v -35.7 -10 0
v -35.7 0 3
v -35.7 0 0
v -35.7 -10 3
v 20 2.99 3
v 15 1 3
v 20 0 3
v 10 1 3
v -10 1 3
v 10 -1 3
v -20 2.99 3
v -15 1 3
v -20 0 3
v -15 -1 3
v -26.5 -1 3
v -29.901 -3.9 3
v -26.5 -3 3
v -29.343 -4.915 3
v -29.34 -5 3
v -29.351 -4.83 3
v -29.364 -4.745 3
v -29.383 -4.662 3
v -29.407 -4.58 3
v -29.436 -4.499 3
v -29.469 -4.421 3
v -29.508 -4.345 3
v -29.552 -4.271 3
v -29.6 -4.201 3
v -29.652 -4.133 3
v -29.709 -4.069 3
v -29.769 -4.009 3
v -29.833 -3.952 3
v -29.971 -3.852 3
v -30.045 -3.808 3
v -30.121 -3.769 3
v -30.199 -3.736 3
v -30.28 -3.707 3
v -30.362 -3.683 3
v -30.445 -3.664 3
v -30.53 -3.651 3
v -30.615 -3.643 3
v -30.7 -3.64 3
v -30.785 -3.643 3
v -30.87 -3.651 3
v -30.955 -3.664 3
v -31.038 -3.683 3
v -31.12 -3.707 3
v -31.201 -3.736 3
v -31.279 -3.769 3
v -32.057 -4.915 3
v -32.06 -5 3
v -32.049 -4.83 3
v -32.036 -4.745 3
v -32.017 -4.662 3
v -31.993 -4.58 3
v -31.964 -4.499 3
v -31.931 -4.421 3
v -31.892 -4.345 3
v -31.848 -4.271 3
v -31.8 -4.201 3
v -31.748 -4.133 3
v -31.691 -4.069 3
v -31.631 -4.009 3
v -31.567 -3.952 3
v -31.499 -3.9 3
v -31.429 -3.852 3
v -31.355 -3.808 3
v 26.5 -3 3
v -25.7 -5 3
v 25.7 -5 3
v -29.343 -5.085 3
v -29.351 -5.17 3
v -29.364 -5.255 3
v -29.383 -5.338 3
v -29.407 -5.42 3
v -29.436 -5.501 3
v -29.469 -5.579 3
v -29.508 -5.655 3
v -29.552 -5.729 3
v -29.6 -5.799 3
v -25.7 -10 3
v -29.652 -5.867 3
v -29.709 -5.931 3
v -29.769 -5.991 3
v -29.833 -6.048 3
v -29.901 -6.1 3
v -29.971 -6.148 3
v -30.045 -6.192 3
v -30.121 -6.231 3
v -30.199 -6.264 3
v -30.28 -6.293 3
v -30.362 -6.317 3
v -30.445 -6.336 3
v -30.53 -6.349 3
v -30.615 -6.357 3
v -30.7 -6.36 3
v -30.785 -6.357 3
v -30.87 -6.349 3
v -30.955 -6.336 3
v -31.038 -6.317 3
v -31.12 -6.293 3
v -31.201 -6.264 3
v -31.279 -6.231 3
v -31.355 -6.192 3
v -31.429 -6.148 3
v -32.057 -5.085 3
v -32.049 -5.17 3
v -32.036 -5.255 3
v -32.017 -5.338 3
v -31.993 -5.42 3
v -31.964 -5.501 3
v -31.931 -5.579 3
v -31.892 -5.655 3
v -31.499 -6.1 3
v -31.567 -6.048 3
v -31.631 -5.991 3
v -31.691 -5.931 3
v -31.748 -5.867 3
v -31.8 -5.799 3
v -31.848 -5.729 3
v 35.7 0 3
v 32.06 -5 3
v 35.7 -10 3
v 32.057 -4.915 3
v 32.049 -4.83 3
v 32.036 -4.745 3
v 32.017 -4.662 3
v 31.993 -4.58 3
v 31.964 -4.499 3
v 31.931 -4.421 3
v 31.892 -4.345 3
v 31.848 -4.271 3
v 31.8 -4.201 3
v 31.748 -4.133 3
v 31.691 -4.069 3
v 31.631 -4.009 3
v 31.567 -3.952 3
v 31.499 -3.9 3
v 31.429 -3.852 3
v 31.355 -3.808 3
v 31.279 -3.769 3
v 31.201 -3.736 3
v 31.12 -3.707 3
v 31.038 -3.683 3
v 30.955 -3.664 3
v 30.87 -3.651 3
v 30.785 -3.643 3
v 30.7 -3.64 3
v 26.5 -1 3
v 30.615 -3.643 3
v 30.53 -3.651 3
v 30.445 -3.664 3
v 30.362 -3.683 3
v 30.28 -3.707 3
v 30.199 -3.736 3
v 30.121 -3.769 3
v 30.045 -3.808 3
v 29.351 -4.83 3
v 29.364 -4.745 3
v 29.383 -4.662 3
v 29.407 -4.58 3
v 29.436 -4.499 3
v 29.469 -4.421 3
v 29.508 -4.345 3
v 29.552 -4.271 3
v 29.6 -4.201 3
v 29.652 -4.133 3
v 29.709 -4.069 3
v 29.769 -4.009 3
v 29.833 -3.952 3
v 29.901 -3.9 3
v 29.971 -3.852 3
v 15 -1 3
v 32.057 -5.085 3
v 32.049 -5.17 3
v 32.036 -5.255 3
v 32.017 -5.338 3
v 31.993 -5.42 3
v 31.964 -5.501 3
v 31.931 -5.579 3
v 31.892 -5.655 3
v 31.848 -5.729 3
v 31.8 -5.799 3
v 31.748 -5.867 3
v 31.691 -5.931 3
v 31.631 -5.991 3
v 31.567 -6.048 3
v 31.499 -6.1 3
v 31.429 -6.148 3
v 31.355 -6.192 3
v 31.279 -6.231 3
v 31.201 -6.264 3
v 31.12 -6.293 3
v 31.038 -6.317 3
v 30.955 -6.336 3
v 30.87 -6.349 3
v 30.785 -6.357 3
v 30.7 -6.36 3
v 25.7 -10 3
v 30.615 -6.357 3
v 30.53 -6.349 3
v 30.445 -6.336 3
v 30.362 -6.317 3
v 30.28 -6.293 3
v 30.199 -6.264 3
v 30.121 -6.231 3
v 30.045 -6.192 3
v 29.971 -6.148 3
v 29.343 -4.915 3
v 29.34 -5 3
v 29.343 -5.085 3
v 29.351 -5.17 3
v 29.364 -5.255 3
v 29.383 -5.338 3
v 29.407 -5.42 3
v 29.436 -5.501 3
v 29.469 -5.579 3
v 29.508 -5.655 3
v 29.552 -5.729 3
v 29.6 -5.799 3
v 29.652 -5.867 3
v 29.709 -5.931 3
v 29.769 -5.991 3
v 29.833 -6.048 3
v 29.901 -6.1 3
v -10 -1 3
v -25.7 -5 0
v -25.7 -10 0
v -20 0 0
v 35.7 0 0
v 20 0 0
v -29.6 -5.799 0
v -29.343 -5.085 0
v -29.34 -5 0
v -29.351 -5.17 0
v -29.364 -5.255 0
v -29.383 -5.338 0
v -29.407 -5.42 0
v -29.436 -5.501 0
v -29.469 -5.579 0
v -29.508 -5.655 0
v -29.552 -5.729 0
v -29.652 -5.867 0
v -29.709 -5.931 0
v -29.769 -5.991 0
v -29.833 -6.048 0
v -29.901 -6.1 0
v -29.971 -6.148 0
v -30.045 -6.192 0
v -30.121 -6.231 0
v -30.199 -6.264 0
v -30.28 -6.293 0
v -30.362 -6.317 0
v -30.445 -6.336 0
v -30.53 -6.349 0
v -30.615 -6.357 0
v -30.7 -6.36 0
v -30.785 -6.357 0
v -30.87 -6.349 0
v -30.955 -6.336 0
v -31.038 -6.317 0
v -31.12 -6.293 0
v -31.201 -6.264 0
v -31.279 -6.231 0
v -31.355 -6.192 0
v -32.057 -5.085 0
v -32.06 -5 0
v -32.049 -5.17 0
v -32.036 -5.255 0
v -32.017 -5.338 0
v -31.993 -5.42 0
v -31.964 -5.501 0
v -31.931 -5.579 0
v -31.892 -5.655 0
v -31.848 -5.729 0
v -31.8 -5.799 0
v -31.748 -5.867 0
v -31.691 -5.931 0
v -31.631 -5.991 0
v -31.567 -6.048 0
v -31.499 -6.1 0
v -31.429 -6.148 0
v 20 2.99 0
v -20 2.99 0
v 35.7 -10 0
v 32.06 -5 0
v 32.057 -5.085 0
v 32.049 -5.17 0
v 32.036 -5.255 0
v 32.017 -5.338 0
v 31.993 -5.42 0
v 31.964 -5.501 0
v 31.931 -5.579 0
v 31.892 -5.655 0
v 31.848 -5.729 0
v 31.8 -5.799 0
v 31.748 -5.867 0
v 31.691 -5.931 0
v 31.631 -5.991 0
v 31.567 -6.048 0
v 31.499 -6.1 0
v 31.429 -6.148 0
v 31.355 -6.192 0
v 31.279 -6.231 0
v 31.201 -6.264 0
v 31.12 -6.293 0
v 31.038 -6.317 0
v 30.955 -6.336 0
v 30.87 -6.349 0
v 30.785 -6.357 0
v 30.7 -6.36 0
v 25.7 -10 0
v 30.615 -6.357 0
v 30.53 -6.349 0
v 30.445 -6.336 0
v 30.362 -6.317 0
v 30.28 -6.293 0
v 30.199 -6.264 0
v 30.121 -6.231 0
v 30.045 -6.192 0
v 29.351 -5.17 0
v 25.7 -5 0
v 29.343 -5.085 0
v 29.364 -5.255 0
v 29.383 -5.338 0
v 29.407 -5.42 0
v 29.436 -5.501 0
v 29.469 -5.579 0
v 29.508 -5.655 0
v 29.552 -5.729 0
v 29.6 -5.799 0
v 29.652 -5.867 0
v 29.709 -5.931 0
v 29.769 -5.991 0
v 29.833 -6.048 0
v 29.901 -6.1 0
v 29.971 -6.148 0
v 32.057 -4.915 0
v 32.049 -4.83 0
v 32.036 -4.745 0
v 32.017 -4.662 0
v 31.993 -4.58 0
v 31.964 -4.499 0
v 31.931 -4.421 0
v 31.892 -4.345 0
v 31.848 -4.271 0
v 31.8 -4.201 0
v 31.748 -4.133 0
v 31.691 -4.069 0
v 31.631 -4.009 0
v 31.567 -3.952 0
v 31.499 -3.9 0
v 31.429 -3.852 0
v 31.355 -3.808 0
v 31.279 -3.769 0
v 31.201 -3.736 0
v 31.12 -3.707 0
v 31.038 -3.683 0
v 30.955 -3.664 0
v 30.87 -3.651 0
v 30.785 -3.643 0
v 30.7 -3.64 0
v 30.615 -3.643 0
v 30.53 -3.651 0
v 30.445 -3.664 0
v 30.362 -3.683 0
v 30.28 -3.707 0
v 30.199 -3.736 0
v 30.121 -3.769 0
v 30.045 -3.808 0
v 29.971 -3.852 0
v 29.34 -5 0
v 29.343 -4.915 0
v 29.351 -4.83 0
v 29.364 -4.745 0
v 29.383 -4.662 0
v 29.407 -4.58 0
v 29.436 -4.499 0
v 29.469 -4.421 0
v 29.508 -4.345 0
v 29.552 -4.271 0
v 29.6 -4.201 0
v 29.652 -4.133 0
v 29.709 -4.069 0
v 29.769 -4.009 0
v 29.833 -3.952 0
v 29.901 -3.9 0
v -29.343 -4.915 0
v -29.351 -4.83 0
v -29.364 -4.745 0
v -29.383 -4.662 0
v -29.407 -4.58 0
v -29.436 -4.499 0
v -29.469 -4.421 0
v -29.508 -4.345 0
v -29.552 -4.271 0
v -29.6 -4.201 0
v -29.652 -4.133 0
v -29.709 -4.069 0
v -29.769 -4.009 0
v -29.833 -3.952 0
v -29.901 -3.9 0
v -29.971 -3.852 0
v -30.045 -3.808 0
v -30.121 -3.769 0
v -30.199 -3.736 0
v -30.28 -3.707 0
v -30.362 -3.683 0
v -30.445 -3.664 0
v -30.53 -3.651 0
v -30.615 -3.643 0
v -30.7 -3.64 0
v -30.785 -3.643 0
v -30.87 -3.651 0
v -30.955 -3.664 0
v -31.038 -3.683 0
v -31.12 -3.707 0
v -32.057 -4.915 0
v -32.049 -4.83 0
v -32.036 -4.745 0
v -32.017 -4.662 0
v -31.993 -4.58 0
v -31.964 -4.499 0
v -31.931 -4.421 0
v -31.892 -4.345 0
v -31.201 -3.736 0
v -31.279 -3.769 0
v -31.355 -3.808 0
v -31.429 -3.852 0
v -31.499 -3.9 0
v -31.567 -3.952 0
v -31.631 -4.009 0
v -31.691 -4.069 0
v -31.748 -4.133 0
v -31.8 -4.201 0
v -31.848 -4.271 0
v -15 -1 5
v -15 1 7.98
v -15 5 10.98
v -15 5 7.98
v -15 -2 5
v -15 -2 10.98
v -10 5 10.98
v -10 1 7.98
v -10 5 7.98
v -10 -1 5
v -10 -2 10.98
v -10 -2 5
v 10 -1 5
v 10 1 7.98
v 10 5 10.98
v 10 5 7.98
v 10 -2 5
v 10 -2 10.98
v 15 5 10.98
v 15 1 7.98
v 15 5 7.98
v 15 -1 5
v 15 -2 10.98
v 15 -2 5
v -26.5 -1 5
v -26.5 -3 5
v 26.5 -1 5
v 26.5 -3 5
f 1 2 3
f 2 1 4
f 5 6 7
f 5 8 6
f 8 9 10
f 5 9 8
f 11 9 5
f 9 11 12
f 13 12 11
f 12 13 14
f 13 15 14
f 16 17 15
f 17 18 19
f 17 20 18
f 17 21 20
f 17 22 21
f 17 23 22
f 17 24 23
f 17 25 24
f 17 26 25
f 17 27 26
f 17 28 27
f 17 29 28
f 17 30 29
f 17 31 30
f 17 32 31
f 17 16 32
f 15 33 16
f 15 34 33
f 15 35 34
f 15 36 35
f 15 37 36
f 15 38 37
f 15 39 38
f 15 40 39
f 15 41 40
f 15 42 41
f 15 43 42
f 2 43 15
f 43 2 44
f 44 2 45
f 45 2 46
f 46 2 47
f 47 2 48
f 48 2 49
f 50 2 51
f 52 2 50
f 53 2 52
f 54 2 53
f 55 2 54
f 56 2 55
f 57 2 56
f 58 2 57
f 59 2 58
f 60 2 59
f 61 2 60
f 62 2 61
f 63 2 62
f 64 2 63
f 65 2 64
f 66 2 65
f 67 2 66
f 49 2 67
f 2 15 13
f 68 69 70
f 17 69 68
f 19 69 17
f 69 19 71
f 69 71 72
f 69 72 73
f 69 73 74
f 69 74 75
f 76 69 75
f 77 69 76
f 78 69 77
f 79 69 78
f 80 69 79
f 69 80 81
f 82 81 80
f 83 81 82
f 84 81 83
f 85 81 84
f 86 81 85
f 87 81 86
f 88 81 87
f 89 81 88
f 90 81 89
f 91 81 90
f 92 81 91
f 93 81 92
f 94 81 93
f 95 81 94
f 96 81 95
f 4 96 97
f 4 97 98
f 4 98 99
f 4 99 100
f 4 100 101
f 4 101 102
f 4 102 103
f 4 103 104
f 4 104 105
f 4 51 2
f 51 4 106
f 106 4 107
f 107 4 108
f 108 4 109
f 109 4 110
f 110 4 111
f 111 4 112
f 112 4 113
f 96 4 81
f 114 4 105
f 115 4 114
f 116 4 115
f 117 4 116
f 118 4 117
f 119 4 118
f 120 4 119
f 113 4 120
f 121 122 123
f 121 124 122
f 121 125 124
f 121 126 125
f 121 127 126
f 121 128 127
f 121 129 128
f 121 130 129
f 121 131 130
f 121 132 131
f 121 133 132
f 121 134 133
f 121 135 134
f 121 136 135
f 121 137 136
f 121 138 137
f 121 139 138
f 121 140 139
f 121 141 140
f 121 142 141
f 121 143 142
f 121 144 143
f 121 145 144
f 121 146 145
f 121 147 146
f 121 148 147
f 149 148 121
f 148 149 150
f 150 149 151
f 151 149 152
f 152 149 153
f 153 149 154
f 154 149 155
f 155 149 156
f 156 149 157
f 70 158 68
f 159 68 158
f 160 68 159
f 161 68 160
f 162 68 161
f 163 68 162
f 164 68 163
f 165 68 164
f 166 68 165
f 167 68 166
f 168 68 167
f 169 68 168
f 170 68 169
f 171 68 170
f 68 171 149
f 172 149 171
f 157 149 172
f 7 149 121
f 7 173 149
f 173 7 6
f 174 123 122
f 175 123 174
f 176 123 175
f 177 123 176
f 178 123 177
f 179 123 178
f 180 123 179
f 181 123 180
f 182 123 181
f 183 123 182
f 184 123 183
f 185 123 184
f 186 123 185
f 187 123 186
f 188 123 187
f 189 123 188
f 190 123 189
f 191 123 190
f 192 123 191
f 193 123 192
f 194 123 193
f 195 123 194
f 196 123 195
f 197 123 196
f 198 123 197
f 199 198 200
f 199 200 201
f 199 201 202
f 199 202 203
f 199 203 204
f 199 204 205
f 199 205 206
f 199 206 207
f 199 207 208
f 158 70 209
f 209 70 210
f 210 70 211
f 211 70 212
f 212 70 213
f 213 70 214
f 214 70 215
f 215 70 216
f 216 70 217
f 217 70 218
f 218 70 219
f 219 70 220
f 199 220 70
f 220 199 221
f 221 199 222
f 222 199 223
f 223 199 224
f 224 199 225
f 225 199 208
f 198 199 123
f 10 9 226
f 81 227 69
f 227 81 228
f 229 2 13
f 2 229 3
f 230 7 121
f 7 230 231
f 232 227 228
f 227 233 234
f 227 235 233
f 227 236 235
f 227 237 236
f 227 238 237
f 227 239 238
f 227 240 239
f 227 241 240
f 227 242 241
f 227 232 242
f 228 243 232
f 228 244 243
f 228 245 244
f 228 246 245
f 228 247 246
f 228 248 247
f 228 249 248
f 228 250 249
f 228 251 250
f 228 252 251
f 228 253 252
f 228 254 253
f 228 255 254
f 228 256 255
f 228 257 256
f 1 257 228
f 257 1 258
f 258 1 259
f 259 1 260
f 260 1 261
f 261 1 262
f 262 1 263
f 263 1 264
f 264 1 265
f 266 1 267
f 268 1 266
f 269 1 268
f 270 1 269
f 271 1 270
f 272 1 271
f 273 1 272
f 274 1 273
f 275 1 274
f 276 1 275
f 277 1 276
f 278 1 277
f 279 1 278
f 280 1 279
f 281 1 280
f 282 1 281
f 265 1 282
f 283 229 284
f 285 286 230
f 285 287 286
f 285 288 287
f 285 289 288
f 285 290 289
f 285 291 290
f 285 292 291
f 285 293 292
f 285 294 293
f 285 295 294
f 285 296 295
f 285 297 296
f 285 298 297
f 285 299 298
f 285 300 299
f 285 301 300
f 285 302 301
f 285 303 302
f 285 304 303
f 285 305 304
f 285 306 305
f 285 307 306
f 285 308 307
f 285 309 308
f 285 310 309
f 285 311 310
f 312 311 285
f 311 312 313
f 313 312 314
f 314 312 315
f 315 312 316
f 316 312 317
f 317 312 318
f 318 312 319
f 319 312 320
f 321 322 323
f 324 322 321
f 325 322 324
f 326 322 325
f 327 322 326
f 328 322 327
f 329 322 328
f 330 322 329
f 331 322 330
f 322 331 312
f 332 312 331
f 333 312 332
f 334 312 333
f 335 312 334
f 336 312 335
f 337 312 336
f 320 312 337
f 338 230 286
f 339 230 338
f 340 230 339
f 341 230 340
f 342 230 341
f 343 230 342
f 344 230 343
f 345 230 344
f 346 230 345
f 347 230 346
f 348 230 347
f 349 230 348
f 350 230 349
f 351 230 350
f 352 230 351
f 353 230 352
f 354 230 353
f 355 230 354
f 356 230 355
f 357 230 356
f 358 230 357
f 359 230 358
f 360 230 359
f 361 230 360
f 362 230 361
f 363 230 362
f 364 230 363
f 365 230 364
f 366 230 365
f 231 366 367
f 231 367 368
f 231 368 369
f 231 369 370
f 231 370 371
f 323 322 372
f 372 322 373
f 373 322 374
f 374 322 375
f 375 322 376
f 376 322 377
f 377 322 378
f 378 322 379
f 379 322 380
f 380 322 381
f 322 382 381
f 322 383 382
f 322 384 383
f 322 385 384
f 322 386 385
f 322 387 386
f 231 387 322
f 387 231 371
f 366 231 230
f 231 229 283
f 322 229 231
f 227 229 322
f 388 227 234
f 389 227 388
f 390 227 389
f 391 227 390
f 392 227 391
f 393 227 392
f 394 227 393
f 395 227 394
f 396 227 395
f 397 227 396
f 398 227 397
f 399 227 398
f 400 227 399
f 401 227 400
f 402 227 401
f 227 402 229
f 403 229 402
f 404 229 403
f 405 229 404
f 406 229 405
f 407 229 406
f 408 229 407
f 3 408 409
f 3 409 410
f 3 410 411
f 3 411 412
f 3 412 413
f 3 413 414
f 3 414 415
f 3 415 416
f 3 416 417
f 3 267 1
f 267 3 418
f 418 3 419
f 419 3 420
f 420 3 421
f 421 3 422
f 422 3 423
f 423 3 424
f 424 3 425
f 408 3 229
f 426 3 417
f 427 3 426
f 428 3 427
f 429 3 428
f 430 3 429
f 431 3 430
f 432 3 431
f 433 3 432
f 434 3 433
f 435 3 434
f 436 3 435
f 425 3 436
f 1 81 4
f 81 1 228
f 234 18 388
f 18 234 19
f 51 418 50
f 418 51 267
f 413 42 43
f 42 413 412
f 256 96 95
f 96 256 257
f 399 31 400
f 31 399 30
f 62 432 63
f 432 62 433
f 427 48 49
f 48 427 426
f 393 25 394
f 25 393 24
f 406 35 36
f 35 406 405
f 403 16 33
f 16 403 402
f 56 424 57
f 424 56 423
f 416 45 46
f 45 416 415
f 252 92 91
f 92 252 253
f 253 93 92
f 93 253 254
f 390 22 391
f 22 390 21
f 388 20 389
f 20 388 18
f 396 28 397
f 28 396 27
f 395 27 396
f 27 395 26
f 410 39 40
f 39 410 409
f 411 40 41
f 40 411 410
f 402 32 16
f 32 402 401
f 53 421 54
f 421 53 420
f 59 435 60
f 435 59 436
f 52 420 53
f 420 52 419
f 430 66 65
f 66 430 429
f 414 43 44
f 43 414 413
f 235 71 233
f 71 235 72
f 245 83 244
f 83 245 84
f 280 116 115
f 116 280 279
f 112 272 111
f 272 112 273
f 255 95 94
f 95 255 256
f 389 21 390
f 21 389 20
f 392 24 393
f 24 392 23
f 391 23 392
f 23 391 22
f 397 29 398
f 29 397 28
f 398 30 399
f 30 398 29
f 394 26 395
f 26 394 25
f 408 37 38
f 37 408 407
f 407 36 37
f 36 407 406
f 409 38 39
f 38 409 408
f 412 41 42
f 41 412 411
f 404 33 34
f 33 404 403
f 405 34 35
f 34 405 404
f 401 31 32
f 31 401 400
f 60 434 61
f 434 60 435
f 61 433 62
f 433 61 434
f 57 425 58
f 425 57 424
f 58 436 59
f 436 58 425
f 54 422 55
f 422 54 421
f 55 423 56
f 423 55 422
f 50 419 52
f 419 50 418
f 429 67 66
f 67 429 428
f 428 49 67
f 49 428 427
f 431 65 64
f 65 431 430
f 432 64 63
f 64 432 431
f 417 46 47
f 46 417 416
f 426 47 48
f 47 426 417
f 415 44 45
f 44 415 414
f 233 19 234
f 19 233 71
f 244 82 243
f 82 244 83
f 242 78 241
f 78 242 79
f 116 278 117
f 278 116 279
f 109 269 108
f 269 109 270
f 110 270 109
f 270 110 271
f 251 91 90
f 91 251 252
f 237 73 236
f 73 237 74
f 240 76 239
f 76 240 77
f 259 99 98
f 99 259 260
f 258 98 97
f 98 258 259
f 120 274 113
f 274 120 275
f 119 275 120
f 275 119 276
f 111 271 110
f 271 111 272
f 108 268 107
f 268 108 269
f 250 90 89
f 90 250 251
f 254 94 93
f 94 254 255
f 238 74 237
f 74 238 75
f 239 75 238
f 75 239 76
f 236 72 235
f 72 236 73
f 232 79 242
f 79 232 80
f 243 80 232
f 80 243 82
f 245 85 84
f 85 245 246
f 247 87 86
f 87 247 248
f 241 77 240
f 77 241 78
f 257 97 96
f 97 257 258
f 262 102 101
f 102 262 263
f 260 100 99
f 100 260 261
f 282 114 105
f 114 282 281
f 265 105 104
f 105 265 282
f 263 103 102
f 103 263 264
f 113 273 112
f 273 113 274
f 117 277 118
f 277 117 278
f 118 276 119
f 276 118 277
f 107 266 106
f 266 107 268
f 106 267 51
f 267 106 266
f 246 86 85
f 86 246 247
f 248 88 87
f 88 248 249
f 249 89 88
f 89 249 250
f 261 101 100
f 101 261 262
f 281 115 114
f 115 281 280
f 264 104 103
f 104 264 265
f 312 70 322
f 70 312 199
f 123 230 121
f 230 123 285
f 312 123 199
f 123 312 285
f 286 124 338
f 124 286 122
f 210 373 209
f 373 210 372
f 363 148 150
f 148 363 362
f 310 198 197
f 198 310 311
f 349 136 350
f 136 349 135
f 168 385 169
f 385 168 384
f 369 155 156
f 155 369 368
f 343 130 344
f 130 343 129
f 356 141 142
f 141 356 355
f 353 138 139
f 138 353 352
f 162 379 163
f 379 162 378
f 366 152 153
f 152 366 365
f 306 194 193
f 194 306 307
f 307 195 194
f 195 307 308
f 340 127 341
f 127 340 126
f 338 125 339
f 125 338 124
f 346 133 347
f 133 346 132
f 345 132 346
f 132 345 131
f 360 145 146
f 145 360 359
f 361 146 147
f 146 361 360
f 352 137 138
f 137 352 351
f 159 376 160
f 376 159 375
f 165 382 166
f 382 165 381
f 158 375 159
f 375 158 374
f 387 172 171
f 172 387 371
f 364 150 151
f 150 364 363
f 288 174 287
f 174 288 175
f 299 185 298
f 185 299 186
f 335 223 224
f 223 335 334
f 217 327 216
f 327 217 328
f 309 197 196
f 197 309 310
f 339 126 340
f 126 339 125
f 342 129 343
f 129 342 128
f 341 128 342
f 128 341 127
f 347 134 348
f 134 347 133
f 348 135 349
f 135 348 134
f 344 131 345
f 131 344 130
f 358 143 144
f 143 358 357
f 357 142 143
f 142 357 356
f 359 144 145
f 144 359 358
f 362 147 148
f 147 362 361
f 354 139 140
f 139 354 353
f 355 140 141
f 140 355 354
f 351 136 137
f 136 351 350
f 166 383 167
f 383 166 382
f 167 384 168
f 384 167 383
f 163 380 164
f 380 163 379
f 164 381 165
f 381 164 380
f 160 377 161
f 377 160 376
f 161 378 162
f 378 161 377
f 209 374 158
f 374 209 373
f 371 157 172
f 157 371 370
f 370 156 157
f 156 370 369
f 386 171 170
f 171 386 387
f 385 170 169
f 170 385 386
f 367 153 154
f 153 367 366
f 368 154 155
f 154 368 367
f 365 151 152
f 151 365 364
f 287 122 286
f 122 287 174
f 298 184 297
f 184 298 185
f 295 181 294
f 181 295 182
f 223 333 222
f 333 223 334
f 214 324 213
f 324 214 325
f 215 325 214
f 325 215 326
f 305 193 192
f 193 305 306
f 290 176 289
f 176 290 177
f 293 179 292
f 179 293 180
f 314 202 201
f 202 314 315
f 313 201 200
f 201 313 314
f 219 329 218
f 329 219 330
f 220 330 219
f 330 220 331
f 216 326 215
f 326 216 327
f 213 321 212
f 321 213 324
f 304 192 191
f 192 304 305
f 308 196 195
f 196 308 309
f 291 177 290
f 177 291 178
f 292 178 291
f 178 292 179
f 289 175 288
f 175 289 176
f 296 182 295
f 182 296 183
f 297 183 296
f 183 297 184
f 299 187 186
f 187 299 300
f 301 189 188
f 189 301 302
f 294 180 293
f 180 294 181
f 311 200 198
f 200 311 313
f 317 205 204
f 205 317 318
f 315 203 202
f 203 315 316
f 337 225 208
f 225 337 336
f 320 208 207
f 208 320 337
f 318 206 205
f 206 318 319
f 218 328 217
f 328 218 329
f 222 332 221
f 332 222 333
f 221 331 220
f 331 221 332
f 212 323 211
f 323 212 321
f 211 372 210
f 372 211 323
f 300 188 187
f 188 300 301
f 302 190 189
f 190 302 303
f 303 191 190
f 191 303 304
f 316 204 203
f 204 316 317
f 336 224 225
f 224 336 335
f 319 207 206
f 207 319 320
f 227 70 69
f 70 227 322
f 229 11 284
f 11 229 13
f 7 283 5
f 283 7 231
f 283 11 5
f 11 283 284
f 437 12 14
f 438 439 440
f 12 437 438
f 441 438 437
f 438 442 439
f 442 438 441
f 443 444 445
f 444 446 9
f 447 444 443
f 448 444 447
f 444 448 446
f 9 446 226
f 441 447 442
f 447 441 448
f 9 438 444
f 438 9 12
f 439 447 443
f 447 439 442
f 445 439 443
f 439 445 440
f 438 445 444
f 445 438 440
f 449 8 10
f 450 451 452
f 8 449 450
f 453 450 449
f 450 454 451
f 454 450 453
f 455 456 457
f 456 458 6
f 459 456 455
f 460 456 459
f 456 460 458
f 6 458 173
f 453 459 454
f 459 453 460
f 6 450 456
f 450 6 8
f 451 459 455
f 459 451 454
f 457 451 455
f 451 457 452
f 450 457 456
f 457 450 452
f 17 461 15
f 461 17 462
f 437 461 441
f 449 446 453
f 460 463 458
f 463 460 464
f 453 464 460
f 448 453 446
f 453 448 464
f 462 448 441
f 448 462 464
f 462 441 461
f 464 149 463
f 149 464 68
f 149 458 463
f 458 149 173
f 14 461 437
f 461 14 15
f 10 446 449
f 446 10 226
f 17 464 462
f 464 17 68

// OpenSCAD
// file: ../library_deh/mag_mount.scad
/* mag_mount.scad

 * ****** Stud magnets ******
16 mm 
http://www.kjmagnetics.com/proddetail.asp?prod=MM-C-16
    Dimensions:
        D=16mm (0.63")
        M=4mm (0.16") (M4 Coarse Male threaded stud)
        H=13mm (0.51")
        h=5mm (0.20")
    Material: NdFeB, Grade N38
    Plating/Coating: Ni-Cu-Ni (Nickel)
    Magnetization Direction: Axial (Poles on Flat Ends)
    Weight: 0.26 oz. (7.37 g)
    Pull Force: 12.1 lbs
    Surface Field: N/A
    Brmax: 12,600 Gauss
    BHmax: 38 MGOe
   $2.49
*/
// Measured dimensions
 mag_thick = 4.82;	    // Magnet thickness (base to shell top)
 mag_shell_dia = 16.0;	    // Magnet shell OD
 mag_shell_flat_dia = 11;   // Dia of flat of magent
 mag_stud_dia = 2.8;        // Dia of mounting magnet studs (4-40)
 mag_stud_len = 8.0;        // Height of stud from magnet back
 mag_washer_thick = 1.1;    // Thickness of washer
 mag_nut_thick = 2.4;       // Stud nut (M3) thickness
 mag_nut_hex_flat = 5.41;   // Nut across flats
 mag_nut_hex_peak = 6.20;   // Nut across peaks (also dia of nut)
 mag_washer_dia = 7.1; // 9.5;      // Diameter of washer for magnet stud
 mag_washer_dia_extra = 2;  // Washer slop

/*
http://www.kjmagnetics.com/proddetail.asp?prod=MM-C-20


    Dimensions:
        D=20mm (0.79")
        M=4mm (0.16") (M4 Coarse Male threaded stud)
        H=15mm (0.59")
        h=7mm (0.28")
    Material: NdFeB, Grade N38
    Plating/Coating: Ni-Cu-Ni (Nickel)
    Magnetization Direction: Axial (Poles on Flat Ends)
    Weight: 0.53 oz. (15.0 g)
    Pull Force: 28.7 lbs
    Surface Field: N/A
    Brmax: 12,600 Gauss
    BHmax: 38 MGOe

  $3.14
*/
 mag20_thick = 7.11;	    // Magnet thickness (base to shell top)
 mag20_shell_dia = 20.2;    // Magnet shell OD
 mag20_stud_dia = 4.53;     // Dia of mounting magnet stud at base
 mag20_stud_len = 7.75;       // Height of stud from magnet back
 mag20_washer_thick = 0.85;    // Thickness of washer
 mag20_nut_thick = 2.93;       // Nut for stud thickness
 mag20_washer_dia = 8.68;      // Diameter of washer for magnet stud
 mag20_washer_dia_extra = 2;  // Washer slop

/*
http://www.kjmagnetics.com/proddetail.asp?prod=MM-C-25

    Dimensions:
        D=25mm (0.98")
        M=5mm (0.20") (M5 Coarse Male threaded stud)
        H=17mm (0.67")
        h=8mm (0.32")
    Material: NdFeB, Grade N38
    Plating/Coating: Ni-Cu-Ni (Nickel)
    Magnetization Direction: Axial (Poles on Flat Ends)
    Weight: 0.92 oz. (26.1 g)
    Pull Force: 48.5 lbs
    Surface Field: N/A
    Brmax: 12,600 Gauss
    BHmax: 38 MGOe
  $4.20
*/
// $$$$$ INCOMPLETE $$$$$$
 mag25_thick = 4.82;	    // Magnet thickness (base to shell top)
 mag25_shell_dia = 16.0;	    // Magnet shell OD
 mag25_stud_dia = 2.8;        // Dia of mounting magnet studs (4-40)
 mag25_stud_len = 7.95;       // Height of stud from magnet back
 mag25_washer_thick = 1.1;    // Thickness of washer
 mag25_nut_thick = 2.4;       // Nut for stud thickness
 mag25_washer_dia = 9.5;      // Diameter of washer for magnet stud
 mag25_washer_dia_extra = 2;  // Washer slop

// Cylindrical magnets
mag_cyl_dia = 6.5; 
mag_cyl_ht = 5.05;
// file: ../library_deh/fasteners.scad
/* ***** fasteners.scad *****
 * library of measurements of 
 *   screws, washers, etc.
 * date: 20170512
*/

// 6-32
screw_dia_s632 = 3.35;	// shaft diameter
screw_dia_ph632 = 6.62;	// pan-head diameter
screw_dia_pht632 = 2.2;	// pan-head thickness
nut_dia_632 = 8.77 ;	// peak-peak 
nut_thick_632 = 2.77;	// thickess

// 4-40
screw_dia_s440 = 2.72;	// shaft diameter
screw_dia_s440_z = 1.90; // Dia at tip
screw_dia_ph = 5.42;	// pan-head diamter
screw_dia_pht = 1.7;	// pan-head thickness
nut_dia_440 =  7.12;	// peak-peak
nut_thick_440 = 2.41;	// thickess
nut_dia_440L = 8.88;	// Lock nut diameter
nut_thick_440L = 4.6;	// Lock nut thickness

// 6-20 self-tap
screw_dia_sod620 = 3.5;	// Outer diameter of threads
screw_dia_sth620 = 2.6;	// Self tap hole
screw_dia_pht = 6.7;	// pan-head diameter

// #4
washer_od_4 = 8.0;		// Washer outer diameter
washer_id_4 = 3.2;		// Washer inner diameter
washer_thick_4 = .94;	// Washer thickness

// #6
washer_od_6 = 9.46;	// Washer outer diameter	
washer_id_6 = 4.04;	// Washer inner diameter
washer_thick = 1.04;	// Washer thickness
washer_thick_6 = 1.04;	// Washer thickness

// M3
nut_dia_M3 = 6.5; 
nut_flat_M3 = 5.43;
nut_thick_M3 = 2.29;
washer_od_M3 = 6.9;	// Washer outside diameter
washer_id_M3 = 3.22;	// Washer inside (hole) diameter
washer_thick_M3 = .57;	// Washer thickness

// M4
nut_dia_M4 = 7.86;
nut_flat_M4 = 6.75;
nut_thick_M4 = 2.96;

// #2 6 self drilling Philips Screw (MSC: 124751)
screw_dia1_ss6 = 3.5;	// Self-tapping: dia at threads
screw_dia2_ss6 = 2.8;	// Self-tapping: dia at drilling end
screw_dia_he_ss6 = 6.7;	// Self-tapping: dia of pan head
// file: ../library_deh/Plano_frame.scad
/* File: Plano_frame.scad
 * Plano enclosure PC board fame
 * Author: deh
 * Latest edit: 201700701
 */

include <mag_mount.scad>

 $fn=100;
 
 // Inside dimensions of Plano box
 plano_len          = 152.5;   // flat-flat
 plano_wid          =  76.0;   // flat-flat

base_len = plano_len;
base_wid = plano_wid;
base_ht  = 3.2;		// Thickness of base plate
base_rnd = 10;	// Base plate corner rounding radius
 
 // Stud magnet relative postions.
 // Bottom magnet is on center-line and x,y reference is 0,0
 plano_mag_top_x  = 30.5;   // Top pair x +/- from center-line (C/L)
 plano_mag_top_y  = 138.69; // Top pair y from bottom magnet hole
 plano_mag_top_ofs = 8;    // Top mags to top edge of PC board max
 // Bottom mag distance from bottom of plano wall
 plano_mag_bot_ofs = plano_len - plano_mag_top_ofs - plano_mag_top_y;
 
 
 plano_offs_mag_y   = 4;    // Offset from edge for magnet hole
 plano_offs_mag_x   = 4;    // Offset from edge for magnet hole
 plano_ctr_y    = (plano_len/2);
 plano_ctr_x    = (plano_wid/2);
  
 plano_mag_stud = mag_stud_dia;  // Dia of mounting magnet studs (4-40)
 plano_mag_stud_len = mag_stud_len; // Height of stud from magnet back
 mag_washer_dia = 9.5;      // Diameter of washer for magnet stud
 mag_washer_thick = 1.1;    // Thickness of washer
 mag_washer_dia_extra = 1;  // Washer slop
 plano_web_thick = 2;   // Plano box thickness where stud is 
 mag_wash_recess_dia = mag_washer_dia + mag_washer_dia_extra;

 // Thickness of base for washer recess
 mag_stud_z = (mag_washer_thick +mag_nut_thick + plano_web_thick);
 mag_wash_recess_z = plano_mag_stud_len - mag_stud_z;    

 // Diameter of recess
 mag_wash_recess_dia = mag_washer_dia + mag_washer_dia_extra;

 // POD board
 pod_wid = 76.0;  // Overall width
 pod_len = 89.4;  // Overall length

// Discovery board
 dis_wid = 65.4;  // Overall width
 dis_len = 95.8;  // Overall length
 
// RJ45 connector on POD board
 RJ_offset=24.8; // Side of RJ45 jack from edge
 RJ_wid=15;      // Width of RJ 45 jack
 RJ_depth=14.5;  // Bottom of POD pc board edge to bottom/back of RJ45
 RJ_length=14;  // Front-Back length

// Cutout in base for RJ45 with plug
 RJ_slop = 4;
 RJ_plug_len = 14; // RJ plug protrudes beyond jack
 RJ_cutout_width = RJ_wid + RJ_slop;
 RJ_cutout_length = RJ_length + RJ_slop + RJ_plug_len;
 RJ_cutout_ofs = pod_wid/2 - (RJ_offset + RJ_wid);
 
 // CAN sub-board module
 sub_wid      = 33.75;  // Overall width
 sub_len      = 62.9;   // Overall lengh
 sub_mtg_wid  = 26.6;   // Between mounting holes, width
 sub_mtg_len  = 57.0;   // Between mounting holes, length 

 // Switcher module
 sw_wid =   20.3;   // Overall width
 sw_len =   41.2;   // Overall length
 sw_mtg_off_out_y   = 5.56; // Offset from edge "out" mounting hole 
 sw_mtg_off_out_x   = 2.7;  // Offset from edge "out" mounting hole 
 sw_mtg_off_in_y    = 3.1;  // Offset from edge "in" mounting hole
 sw_mtg_off_in_x    = 6.0;  // Offset from edge "in" mounting hole
 
 // RJ jack (load-cell jack)
 rj_grv =  4.0;  // Groove Depth 
 rj_ht  = 14.2;  // Groove Length
 rj_wid = 14.2;  // Groove Height
 
 // Post ridge
 p_ridge = 1.5; // Height of ridge to position PC board on post
 p_offset = 2;  // Offset of ridge from edge of post
 
 // Pod post
 pod_post_ht = (RJ_depth + 1);
 pod_post_y = 9;    // Length in "y" (long/length) box direction)
 pod_post_x = 6;    // Length in "x" (short/width) box direction)
 pod_post_q = 2.0;  // Width of ridge
 pod_post_s = 2.5;    // Screw hole dia
 pod_post_sd = 5;   // Screw hole depth

 // Pod board clip
 pcwide = 4;        // Width of clip post
 pcleng = 50;       // X axis direction length
 pc_y = base_len;   // y positioning

 iso_len   = 50.2;	// Length: two RJ 45 jacks parallel
 iso_wid   = 46.3;      // Width
 iso_thick = 1.6;	// PC board thickness
 iso_slop  = 0.0;	// Allowance for board variation
 iso_lip   = 1.2;	// Ledge width for board seating
 iso_ridge_ht = 1.55;	// Ridge ht for seat
 iso_ridge_wid= 1.5;	// Ridge width for seat
 iso_post_ht = 3.6;//6.0;	// Height of lip above base

 iso_osd_y = iso_wid + iso_slop - 0.5; // Board y
 iso_osd_x = iso_len + iso_slop - 0.5; // Board x
 iso_side  = iso_lip + iso_ridge_wid;
// file: ../library_deh/deh_shapes.scad
/* **** deh_shapes.scad *****
   * Library of useful shapes
   * 20170512
*/

/*  ***** tubedeh *****
d1 = outside diameter
d2 = inside diameter
ht = height
module tubedeh(d1,d2,ht)
reference is center of tube, bottom
*/

module tubedeh(d1,d2,ht)
{
   difference()
   {
     cylinder(d = d1, h = ht, center = false);
     cylinder(d = d2, h = ht + .001, center = false);
   }
}
/* ***** rounded_bar *****
 * rectangular bar with rounded end
bar with one end rounded
rounded_bar(d, l, h)
d = diameter of rounded end, and width of bar
l = length of bar from center of rounded end to end
h = thickness (height) of bar
reference is center of rounded end, bottom
*/
module rounded_bar(d, l, h)
{
    // Rounded end
    cylinder(d = d, h = h, center = false);
    // Bar
    translate([0, -d/2, 0])
       cube([l, d, h],false);
}
/* ***** eyebar *****
 * rounded bar with hole in rounded end
 * module eye_bar(d1, d2, len, ht)
d1 = outside diameter of rounded end, and width of bar
d2 = diameter of hole in end of bar
*/
module eye_bar(d1, d2, len, ht)
{
   difference()
   {   
      rounded_bar(d1,len,ht);
      cylinder(d = d2, h = ht + .001, center = false);
   }
}
/* ***** rounded_rectangle ******
rounded_rectangle(l,w,h,rad);
l = length (x direction)
w = width (y direction)
h = thickness (z direction)
rad = radius of corners
reference = center of rectangle x,y, bottom
*/
module rounded_rectangle(l,w,h,rad)
{
  translate([-(l-rad)/2,-(w-rad)/2,0])
  {
    // Four rounded edges
    translate([0,0,0])
      rounded_bar(rad*2,l-rad,h);
    translate([l-rad,0,0])
      rotate([0,0,90])
      rounded_bar(rad*2,w-rad,h);
    translate([l-rad,w-rad,0])
      rotate([0,0,180])
      rounded_bar(rad*2,l-rad,h);
    translate([0,w-rad,0])
      rotate([0,0,-90])
      rounded_bar(rad*2,w-rad,h);
    // Fill in center
    translate([0,0,0])
      cube([l-rad + .01,w-rad + .01,h],false);
  }
}

/* ***** rounded rim *****
module rounded_rim(l,w,h,rad,tk);
l = length (inside, x direction)
w = width (inside, y direction)
h = thickness (z direction)
rad = radius of corners
tk = thickness of rim wall
*/
module rounded_rim(l,w,h,rad,tk)
{
  difference()
  {
    rounded_rectangle(l+2*tk,w+2*tk,h,rad);
    rounded_rectangle(l, w, h, rad);
  }
}

/* ***** wedge *****
 * l = length
 * w = width
 * h = height/thickness
 * wedge(l, w, h)
*/
 module wedge(l, w, h)
 {
   polyhedron(
      points=[[0,0,0], [l,0,0], [l,w,0], [0,w,0], [0,w,h], [l,w,h]],
       faces=[[0,1,2,3],[5,4,3,2],[0,4,5,1],[0,3,4],[5,2,1]] );
 }
/* **** wedge_isoceles) ****
 * l - z axis length
 * w - y axis length 
 * h - x axis length
 * reference: [0, w/2, 0]
 * wedge_isoceles(l, w, h);
 */

module wedge_isoceles(l, w, h)
 {
  translate([0,0,l])
   rotate([0,90,0])
    translate([0,-w/2,0])
     polyhedron(
      points=[[0,0,0], [l,0,0], [l,w,0], [0,w,0], [0,w/2,h], [l,w/2,h]],
       faces=[[0,1,2,3],[5,4,3,2],[0,4,5,1],[0,3,4],[5,2,1]] );
 }
/* ***** rounded_triangle *****
 * l1 = side 1
 * l2 = side 2
 * l3 = side 3
 * h  = height/thickness
 * rad = radius of rounded corners
 */
module rounded_triangle(l1,l2,l3,h,rad)
{
  // Compute rotation angles
  al3 = acos((l1*l1 + l2*l2 - l3*l3)/(2 * l1 * l2));
  al1 = acos((l2*l2 + l3*l3 - l1*l1)/(2 * l2 * l3));
  al2 = acos((l3*l3 + l1*l1 - l2*l2)/(2 * l3 * l1));
  // Setup bars for edges
  translate([0,0,0])
    rotate([0,0,0])
      rounded_bar(rad,l3,h);
  translate([l3,0,0])
    rotate([0,0,180-al2])
      rounded_bar(rad,l1,h);
  rotate([0,0,al1])
    translate([l2,0,0])
      rotate([0,0,180])
        rounded_bar(rad,l2,h);
  // Fill in center
    triangle(l1,l2,l3,h);
}
/* ***** triangle *****
 * l1 = side 1
 * l2 = side 2
 * l3 = side 3
 * h  = height/thickness
 * triangle(l1,l2,l3,h);
 */
module triangle(l1,l2,l3,h)
{
  // Compute rotation angle
  al1 = acos((l2*l2 + l3*l3 - l1*l1)/(2 * l2 * l3));
  
  linear_extrude(height = h)
  polygon(points = [[0,0],[l3,0],[l2*cos(al1),l2*sin(al1)]]);
}
/* ***** chamfered hole *****
 * Punch hole with chamfer on one end
 * d1 = main hole diameter
 * d2 = hole diameter at chamfered end
 * ht1 = height of whole hole
 * ht2 = depth of  chamfer
*/
module chamfered_hole(d1,d2,ht1,ht2)
{
   rotate_extrude(convexity = 10)
     polygon(points = [[0,0],[d1/2,0],[d1/2,ht1-ht2],[d2/2,ht1],[0,ht1]]);

}

/* ***** fillet *****
 * r = radius of fillet
 * l = length of fillet
 fillet (r,l);
*/
module fillet(r,l)
{
   difference()
   {
     union()
     {
       cube([2*r,2*r,l]);
     }
     union()
     {
       translate ([r,r,0])
           cylinder(d = 2*r + 0.1, h = l, center = false);
       translate([r,0,0])
           cube([r,2*r,l],center = false);
       translate([0,r,0])
           cube([2*r,r,l],center = false);
     }
   }
}
/* ***** circular chamfer *****
 * d = outer diameter
 * rad = chamfer radius
 * circular_chamfer(d, rad);
*/
module circular_chamfer(d, rad)
{
  ofs = (d/2 - rad);
  rotate_extrude()
  translate([ofs,0])
   difference()
   {
     union()
     {
       square(size = [rad, rad]);
     }
     union()
     {
       translate ([0,rad ])
           circle(d = 2*rad + 0.1);
     }
   }
}
module circular_inner_chamfer(d, rad)
{
  circular_chamfer(d, rad);
} 

/* ***** circular chamfer *****
 * d = inner diameter
 * rad = chamfer radius
 * circular_chamfer(d, rad);
*/
module circular_outer_chamfer(d, rad)
{
  ofs = (d/2 - rad);
  rotate_extrude()
  translate([ofs,0])
   difference()
   {
     union()
     {
       square(size = [rad, rad]);
     }
     union()
     {
       translate ([rad,rad ])
           circle(d = 2*rad + 0.1);
     }
   }
}
// main file
/* File: carrier_clamp.scad
 * Plano box with Discovery F4: carrier clamp above carrier
 * Author: deh
 * Latest edit: 201700705
 */

include <../library_deh/deh_shapes.scad>
include <../library_deh/Plano_frame.scad>
include <../library_deh/fasteners.scad>

jj = 0.5;	// Minor y direction adjustment
sid_wid = 2.5;  // Width of side rails
sid_len = 15;   // Length of side rails
sid_rail_y  = pc_y - pod_post_q - dis_len - jj;
sid_rail_y2 = pc_y - pod_post_q - dis_len + 65 - jj;

dis_post_y = 10;
dis_post_ht = 3;

     ofs = 3;

 $fn=100;


module clamp(len)
{
   c_ht1 = 5.0;//4.0;//5.5;//3;
   c_w1 = 3;
   c_w2 = 7;
   c_z2 = 0 + c_ht1;
   c_y = -c_w1;

   translate([0,-c_w1,0])
     cube([len,c_w1,c_ht1-.01],false);

   // Overhang
   translate([0,c_y,c_z2-.02])
     cube([len,c_w2,3],false);

}
module clamps()
{
  len = 5;
  ofs = 1;//-1;
  translate([-15,ofs,dis_post_ht])
   clamp(len);
   
  translate([ 15-len,ofs,dis_post_ht])
   clamp(len);

}

 module dis_post()
 {
    difference()
     {
       union()
       {
         translate([ 0,-dis_post_y,  0])
            cube([dis_post_y, dis_post_y, dis_post_ht],false);
       }
       union()
       {
            translate([dis_post_y/2, -dis_post_y/2, -.01])
                cylinder(h = dis_post_ht+.01, d = screw_dia_s440, center = false);
       }
       
     }      
 }
ee = 15;     

module pod_4posts()
 {
     ofs = 3;
     translate([-dis_wid/2-ofs, 0, 0])
       dis_post();
     
     translate([dis_wid/2-dis_post_y+ofs, 0, 0])
       dis_post();

 }
 
tbr_len = 32;
tbr_ht = 5;
tbr_wid = 5;
 module c_bar()
 {
     translate([-dis_wid/2+ofs+1.5,-tbr_wid,0])
       cube([dis_wid - dis_post_y-1,tbr_wid, dis_post_ht],false);

     translate([-20, -.01 ,0])
       cube([40,3, dis_post_ht],false);

      
 }
module stiffner()
{
  wid = 53;
  thk = 2;
	translate([-wid/2,-3,dis_post_ht])
		cube([wid,thk,2],center=false);

}

module base()
{
   difference()
    {
        union()
        {
            pod_4posts();
            c_bar(); 
            clamps();   
				stiffner();        
        }
        union()
        {
        }
    }
}
base();
